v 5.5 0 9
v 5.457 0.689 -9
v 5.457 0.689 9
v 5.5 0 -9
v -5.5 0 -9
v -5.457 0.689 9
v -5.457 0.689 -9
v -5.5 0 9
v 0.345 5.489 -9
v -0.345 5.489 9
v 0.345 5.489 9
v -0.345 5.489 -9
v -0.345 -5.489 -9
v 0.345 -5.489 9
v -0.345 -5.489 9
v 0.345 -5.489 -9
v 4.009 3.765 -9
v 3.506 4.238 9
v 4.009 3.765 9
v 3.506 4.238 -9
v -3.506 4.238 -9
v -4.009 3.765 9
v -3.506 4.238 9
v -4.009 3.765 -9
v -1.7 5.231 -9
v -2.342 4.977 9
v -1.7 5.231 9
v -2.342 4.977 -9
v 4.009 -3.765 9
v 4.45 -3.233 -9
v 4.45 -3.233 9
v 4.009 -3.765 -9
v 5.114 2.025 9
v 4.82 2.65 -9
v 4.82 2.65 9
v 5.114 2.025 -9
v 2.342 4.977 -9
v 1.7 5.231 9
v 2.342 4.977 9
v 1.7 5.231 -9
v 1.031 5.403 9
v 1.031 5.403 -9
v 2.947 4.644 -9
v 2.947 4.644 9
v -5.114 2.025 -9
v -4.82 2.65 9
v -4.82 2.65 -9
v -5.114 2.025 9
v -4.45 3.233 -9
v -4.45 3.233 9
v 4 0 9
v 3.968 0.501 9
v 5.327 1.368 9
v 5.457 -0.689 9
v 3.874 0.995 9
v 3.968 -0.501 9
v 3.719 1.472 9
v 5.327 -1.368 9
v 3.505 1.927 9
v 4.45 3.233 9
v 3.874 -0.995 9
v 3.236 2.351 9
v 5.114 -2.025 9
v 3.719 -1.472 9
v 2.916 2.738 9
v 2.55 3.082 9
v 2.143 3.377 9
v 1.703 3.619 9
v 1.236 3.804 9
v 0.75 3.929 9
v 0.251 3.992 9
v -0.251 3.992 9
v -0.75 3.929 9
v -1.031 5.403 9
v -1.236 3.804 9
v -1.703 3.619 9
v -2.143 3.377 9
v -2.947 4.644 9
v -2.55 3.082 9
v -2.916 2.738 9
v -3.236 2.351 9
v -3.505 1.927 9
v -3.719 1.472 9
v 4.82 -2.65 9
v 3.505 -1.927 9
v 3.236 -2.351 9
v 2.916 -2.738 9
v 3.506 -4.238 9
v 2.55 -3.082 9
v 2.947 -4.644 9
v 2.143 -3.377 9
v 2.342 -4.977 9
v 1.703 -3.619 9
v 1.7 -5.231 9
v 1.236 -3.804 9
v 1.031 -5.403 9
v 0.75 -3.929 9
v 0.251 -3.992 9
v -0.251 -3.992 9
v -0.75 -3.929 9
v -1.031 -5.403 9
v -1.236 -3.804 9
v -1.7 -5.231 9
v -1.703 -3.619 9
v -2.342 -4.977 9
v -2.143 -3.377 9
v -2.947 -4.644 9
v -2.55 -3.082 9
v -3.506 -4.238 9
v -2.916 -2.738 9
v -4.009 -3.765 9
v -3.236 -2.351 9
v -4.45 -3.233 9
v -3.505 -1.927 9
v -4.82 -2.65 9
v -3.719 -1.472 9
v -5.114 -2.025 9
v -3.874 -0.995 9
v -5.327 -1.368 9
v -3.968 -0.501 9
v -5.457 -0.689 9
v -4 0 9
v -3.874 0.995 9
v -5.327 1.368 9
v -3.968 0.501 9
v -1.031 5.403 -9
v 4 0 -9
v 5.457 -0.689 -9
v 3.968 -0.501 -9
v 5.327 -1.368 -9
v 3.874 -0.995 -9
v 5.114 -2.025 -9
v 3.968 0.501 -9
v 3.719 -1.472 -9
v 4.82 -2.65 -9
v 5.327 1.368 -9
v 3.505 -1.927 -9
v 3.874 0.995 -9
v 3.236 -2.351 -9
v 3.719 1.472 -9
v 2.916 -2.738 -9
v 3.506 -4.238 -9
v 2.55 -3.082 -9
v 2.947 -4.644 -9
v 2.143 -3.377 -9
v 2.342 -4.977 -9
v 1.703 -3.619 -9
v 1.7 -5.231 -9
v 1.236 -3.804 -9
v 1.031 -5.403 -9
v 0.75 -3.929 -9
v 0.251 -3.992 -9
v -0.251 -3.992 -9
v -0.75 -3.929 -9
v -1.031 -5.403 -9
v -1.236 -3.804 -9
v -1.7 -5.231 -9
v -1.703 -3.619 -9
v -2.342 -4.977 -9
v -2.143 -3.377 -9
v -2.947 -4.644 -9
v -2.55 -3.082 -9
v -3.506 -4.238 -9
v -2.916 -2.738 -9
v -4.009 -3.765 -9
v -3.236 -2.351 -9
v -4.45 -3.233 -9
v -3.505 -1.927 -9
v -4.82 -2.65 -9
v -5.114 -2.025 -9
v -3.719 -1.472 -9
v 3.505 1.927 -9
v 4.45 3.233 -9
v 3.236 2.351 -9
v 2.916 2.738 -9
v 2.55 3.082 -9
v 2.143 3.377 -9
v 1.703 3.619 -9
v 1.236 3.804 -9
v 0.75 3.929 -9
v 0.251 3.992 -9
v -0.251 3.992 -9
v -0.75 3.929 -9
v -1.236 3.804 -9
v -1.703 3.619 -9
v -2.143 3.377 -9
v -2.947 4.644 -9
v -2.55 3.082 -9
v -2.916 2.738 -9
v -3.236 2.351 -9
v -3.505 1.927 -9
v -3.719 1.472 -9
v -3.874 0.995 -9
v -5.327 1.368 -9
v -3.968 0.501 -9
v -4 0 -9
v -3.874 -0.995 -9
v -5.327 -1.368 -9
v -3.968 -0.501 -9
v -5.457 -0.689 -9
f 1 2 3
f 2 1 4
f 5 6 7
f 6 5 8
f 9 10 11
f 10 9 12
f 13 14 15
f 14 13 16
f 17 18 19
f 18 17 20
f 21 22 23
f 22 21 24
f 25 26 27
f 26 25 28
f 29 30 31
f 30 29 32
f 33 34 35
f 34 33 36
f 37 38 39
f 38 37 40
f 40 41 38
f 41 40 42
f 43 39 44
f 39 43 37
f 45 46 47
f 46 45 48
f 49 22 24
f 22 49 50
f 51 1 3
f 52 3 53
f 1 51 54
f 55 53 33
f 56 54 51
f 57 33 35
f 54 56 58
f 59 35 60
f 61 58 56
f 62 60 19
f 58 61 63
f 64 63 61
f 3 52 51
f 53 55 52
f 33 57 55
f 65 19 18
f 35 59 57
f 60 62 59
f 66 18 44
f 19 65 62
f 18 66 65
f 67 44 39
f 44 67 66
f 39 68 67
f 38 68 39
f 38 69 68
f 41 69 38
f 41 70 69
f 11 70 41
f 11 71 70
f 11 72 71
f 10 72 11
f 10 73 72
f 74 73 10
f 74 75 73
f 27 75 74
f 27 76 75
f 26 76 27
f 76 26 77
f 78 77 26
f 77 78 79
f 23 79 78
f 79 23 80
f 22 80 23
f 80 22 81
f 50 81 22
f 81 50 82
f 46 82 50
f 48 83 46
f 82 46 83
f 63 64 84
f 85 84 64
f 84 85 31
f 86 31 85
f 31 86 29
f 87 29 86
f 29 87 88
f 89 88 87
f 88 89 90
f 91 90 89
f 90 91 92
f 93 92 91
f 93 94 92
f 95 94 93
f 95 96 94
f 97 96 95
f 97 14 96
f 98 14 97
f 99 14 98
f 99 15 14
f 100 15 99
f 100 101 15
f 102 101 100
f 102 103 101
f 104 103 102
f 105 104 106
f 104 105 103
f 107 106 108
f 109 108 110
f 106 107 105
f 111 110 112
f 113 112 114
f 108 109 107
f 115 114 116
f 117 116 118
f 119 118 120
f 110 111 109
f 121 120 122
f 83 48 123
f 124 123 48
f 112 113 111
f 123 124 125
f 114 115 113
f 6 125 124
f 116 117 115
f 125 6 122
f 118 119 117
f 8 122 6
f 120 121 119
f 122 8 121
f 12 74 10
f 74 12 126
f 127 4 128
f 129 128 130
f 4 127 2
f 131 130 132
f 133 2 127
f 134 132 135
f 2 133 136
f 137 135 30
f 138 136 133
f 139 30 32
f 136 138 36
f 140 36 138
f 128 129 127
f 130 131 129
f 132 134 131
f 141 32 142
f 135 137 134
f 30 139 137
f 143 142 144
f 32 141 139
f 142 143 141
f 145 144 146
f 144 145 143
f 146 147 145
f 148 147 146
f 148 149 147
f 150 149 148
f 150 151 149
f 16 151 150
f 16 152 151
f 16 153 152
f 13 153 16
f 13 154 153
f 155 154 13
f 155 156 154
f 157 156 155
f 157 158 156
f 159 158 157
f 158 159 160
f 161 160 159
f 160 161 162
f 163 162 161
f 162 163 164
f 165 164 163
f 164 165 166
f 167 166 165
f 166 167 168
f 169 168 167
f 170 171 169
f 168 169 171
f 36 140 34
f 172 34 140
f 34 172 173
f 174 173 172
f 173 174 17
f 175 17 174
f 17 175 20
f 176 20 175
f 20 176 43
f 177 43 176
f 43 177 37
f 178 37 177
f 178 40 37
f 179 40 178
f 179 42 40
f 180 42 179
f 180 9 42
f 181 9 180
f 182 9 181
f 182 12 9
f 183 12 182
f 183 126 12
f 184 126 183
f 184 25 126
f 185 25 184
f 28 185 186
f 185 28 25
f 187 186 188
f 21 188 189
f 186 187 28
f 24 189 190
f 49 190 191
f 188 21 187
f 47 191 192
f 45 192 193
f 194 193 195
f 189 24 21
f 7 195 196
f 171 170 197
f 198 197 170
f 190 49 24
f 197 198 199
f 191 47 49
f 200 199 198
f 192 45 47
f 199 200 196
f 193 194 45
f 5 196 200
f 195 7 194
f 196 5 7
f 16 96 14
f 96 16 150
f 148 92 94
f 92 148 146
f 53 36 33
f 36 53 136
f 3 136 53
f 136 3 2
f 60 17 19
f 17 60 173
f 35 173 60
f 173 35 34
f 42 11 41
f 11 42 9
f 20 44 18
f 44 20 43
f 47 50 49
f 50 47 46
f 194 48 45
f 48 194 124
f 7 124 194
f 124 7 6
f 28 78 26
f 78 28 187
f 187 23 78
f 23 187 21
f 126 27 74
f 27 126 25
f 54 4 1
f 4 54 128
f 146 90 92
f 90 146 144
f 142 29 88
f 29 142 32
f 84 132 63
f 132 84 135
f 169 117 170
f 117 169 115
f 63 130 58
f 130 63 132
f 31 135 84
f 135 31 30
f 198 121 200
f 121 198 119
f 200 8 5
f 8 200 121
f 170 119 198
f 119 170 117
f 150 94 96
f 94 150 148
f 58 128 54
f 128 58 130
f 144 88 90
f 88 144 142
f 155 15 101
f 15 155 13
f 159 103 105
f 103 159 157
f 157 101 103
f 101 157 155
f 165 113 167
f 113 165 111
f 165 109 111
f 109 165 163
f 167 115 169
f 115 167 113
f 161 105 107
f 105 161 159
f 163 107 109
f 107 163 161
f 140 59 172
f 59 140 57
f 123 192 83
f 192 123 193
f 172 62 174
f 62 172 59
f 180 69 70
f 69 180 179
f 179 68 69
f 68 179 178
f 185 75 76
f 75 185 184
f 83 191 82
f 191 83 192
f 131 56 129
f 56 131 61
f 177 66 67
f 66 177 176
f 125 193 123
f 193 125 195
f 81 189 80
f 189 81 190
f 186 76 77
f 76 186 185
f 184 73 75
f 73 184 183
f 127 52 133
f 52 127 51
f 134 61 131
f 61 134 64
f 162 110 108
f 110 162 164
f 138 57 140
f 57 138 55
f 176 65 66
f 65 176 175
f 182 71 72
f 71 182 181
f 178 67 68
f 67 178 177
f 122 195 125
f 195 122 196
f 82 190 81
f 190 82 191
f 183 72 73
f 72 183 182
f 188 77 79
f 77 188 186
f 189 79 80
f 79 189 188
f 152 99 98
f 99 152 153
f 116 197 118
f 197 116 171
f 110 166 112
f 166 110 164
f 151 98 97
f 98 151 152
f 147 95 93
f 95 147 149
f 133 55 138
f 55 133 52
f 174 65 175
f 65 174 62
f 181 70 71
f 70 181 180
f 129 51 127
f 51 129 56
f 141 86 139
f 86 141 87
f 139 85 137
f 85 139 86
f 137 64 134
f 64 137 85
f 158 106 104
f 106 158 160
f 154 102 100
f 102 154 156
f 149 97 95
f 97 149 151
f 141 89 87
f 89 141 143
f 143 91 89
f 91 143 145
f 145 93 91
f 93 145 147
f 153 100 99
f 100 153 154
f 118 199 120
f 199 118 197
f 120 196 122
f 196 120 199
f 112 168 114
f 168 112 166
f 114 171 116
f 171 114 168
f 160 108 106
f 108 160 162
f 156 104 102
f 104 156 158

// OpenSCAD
$fn = 50;


difference() {
	union() {
		translate(v = [0, 0, -9.0000000000]) {
			cylinder(h = 18, r = 5.5000000000);
		}
	}
	union() {
		translate(v = [0, 0, -100.0000000000]) {
			cylinder(h = 200, r = 4.0000000000);
		}
	}
}
